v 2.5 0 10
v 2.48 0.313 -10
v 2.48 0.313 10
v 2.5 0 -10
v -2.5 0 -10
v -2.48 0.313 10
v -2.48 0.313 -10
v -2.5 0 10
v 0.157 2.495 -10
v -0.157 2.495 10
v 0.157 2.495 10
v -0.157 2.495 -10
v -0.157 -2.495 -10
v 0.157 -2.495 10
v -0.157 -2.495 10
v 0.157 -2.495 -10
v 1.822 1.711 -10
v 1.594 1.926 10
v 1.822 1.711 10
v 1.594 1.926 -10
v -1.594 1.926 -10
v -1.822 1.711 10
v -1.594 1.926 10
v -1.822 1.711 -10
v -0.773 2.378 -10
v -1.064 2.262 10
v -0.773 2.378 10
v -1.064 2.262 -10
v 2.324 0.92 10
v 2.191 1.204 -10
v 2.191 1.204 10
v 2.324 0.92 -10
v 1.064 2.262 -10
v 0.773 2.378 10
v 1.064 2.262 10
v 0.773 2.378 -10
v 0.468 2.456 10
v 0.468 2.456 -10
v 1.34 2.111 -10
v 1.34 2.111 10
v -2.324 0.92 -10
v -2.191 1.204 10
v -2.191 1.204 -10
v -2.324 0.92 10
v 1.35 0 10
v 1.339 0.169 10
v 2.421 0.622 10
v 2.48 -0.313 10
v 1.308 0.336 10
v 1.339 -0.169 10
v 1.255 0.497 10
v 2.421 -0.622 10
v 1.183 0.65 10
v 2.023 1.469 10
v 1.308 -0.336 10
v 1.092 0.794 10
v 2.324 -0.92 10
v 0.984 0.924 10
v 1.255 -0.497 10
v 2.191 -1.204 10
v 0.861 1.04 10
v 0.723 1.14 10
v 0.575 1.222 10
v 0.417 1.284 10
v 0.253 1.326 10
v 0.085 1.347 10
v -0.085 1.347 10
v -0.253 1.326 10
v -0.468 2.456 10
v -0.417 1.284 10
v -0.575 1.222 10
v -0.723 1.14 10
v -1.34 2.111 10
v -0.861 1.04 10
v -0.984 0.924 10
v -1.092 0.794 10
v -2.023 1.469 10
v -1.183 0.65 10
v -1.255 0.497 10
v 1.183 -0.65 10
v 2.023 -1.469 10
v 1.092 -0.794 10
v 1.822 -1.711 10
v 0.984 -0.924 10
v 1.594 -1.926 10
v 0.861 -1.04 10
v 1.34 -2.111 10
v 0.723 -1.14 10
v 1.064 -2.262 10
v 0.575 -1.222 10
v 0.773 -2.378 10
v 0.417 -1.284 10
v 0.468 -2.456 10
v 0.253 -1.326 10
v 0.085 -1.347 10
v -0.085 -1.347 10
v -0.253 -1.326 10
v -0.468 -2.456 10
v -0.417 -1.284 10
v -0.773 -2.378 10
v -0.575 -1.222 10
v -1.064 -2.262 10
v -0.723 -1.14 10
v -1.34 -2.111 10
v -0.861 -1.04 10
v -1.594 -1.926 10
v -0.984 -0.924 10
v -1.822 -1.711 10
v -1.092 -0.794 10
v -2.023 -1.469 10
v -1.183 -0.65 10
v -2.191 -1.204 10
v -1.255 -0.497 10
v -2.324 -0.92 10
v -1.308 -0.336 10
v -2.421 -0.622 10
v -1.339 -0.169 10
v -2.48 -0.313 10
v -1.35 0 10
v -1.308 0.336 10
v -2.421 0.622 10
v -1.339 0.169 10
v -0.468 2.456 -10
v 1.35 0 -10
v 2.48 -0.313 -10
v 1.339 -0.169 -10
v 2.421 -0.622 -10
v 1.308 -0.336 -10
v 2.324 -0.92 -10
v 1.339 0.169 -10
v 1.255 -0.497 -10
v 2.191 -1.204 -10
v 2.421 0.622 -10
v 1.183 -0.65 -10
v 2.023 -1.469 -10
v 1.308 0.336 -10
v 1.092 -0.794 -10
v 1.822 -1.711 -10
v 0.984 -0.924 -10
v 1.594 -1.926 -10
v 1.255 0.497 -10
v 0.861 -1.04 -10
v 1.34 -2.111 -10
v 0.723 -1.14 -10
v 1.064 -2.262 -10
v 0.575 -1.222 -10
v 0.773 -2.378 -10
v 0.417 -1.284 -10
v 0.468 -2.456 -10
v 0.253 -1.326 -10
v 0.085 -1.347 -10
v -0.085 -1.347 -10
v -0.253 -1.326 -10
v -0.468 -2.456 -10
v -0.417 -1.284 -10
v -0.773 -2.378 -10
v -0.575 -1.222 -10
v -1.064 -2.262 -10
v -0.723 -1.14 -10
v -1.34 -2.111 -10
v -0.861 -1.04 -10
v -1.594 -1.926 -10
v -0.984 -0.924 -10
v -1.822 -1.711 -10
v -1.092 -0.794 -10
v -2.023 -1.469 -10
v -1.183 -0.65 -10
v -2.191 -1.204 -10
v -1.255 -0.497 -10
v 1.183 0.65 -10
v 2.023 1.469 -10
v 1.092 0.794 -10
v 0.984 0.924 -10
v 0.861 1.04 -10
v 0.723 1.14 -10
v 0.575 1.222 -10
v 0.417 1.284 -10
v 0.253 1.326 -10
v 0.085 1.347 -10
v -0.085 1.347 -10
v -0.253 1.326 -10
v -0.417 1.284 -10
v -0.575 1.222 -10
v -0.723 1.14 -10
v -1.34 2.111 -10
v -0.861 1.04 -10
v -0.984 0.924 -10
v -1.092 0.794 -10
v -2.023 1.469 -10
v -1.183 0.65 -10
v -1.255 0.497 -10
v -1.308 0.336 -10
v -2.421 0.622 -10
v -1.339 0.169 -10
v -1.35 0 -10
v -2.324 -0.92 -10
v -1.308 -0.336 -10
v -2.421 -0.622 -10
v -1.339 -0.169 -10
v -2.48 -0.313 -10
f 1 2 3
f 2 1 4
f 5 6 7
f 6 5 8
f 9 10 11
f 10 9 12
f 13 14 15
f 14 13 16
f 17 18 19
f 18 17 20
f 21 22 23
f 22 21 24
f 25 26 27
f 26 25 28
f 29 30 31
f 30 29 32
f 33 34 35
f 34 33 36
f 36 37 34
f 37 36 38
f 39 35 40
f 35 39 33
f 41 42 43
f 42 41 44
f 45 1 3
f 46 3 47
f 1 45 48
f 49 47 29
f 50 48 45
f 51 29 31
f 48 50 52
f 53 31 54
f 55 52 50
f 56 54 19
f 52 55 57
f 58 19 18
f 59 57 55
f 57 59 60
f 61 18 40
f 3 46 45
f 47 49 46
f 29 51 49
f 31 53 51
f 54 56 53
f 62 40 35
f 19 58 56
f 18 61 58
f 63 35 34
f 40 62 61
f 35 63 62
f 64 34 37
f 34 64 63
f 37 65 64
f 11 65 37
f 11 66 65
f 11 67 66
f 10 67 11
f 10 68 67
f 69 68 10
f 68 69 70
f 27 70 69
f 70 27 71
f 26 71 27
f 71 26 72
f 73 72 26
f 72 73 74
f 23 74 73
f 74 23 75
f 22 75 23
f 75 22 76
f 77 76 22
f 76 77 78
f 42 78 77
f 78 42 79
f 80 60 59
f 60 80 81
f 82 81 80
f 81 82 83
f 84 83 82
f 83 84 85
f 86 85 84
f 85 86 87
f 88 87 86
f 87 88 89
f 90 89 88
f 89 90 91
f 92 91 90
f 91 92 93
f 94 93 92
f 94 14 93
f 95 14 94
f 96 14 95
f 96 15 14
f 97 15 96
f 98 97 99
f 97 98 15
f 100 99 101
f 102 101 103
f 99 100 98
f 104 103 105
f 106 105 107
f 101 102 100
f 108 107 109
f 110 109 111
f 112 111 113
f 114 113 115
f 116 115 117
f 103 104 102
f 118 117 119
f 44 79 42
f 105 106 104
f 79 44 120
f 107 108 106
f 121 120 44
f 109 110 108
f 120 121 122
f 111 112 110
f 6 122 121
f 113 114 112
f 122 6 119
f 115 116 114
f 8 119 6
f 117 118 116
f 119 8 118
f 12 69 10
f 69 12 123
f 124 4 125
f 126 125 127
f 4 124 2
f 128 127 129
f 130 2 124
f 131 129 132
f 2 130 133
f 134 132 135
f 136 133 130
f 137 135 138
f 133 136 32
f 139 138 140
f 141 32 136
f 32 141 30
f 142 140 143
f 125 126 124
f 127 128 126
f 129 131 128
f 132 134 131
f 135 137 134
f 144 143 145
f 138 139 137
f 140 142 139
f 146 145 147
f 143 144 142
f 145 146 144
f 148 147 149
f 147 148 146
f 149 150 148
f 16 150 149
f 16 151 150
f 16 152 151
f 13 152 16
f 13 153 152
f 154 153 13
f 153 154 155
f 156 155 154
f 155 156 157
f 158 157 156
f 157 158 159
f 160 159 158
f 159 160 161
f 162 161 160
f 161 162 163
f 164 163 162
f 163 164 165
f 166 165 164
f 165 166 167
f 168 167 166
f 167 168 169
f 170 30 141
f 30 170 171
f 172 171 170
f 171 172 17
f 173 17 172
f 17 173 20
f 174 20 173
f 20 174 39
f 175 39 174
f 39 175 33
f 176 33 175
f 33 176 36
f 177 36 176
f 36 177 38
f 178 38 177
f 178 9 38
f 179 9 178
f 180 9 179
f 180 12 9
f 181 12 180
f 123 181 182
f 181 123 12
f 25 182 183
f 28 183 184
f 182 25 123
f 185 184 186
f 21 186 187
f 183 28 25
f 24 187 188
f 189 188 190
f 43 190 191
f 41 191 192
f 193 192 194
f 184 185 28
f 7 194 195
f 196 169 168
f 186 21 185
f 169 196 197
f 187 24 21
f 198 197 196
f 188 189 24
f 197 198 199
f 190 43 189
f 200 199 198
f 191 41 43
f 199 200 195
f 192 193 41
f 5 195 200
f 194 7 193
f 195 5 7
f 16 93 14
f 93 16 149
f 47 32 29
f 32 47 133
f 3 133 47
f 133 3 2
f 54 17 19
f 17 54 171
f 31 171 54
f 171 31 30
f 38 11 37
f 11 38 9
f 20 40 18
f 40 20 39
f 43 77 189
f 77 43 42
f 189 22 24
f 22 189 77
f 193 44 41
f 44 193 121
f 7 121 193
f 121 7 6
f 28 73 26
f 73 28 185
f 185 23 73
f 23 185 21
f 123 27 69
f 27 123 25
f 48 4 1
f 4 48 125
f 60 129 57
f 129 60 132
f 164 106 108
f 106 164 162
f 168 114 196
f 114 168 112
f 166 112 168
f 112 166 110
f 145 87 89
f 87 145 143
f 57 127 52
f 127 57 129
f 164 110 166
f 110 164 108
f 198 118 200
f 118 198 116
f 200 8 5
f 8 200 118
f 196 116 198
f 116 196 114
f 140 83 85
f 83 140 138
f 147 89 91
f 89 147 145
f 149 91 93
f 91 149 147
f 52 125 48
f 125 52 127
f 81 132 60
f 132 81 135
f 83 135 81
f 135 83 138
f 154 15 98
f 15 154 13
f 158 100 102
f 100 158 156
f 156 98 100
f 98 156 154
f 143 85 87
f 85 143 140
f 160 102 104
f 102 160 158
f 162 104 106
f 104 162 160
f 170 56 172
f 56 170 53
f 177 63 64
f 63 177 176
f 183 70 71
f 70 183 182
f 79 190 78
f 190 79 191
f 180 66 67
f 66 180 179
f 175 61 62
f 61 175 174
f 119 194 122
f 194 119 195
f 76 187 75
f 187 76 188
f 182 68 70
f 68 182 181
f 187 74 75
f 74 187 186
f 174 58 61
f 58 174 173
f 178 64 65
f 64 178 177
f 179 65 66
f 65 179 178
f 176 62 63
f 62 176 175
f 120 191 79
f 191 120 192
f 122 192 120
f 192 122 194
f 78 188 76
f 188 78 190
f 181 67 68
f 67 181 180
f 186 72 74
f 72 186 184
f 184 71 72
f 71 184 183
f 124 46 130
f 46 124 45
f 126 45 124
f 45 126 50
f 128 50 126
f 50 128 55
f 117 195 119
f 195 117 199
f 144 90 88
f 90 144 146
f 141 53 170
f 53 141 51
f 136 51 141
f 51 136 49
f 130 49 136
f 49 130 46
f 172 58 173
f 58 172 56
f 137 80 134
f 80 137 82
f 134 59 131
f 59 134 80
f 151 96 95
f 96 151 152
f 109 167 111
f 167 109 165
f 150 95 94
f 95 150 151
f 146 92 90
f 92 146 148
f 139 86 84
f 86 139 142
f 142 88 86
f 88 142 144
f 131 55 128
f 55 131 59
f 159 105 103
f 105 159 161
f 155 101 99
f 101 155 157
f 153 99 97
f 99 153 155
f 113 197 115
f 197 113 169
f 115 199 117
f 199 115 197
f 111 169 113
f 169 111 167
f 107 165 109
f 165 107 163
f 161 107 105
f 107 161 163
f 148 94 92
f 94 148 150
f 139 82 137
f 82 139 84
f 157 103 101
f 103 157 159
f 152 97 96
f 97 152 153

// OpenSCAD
$fn = 50;


difference() {
	union() {
		translate(v = [0, 0, -10.0000000000]) {
			cylinder(h = 20, r = 2.5000000000);
		}
	}
	union() {
		translate(v = [0, 0, -100.0000000000]) {
			cylinder(h = 200, r = 1.3500000000);
		}
	}
}
